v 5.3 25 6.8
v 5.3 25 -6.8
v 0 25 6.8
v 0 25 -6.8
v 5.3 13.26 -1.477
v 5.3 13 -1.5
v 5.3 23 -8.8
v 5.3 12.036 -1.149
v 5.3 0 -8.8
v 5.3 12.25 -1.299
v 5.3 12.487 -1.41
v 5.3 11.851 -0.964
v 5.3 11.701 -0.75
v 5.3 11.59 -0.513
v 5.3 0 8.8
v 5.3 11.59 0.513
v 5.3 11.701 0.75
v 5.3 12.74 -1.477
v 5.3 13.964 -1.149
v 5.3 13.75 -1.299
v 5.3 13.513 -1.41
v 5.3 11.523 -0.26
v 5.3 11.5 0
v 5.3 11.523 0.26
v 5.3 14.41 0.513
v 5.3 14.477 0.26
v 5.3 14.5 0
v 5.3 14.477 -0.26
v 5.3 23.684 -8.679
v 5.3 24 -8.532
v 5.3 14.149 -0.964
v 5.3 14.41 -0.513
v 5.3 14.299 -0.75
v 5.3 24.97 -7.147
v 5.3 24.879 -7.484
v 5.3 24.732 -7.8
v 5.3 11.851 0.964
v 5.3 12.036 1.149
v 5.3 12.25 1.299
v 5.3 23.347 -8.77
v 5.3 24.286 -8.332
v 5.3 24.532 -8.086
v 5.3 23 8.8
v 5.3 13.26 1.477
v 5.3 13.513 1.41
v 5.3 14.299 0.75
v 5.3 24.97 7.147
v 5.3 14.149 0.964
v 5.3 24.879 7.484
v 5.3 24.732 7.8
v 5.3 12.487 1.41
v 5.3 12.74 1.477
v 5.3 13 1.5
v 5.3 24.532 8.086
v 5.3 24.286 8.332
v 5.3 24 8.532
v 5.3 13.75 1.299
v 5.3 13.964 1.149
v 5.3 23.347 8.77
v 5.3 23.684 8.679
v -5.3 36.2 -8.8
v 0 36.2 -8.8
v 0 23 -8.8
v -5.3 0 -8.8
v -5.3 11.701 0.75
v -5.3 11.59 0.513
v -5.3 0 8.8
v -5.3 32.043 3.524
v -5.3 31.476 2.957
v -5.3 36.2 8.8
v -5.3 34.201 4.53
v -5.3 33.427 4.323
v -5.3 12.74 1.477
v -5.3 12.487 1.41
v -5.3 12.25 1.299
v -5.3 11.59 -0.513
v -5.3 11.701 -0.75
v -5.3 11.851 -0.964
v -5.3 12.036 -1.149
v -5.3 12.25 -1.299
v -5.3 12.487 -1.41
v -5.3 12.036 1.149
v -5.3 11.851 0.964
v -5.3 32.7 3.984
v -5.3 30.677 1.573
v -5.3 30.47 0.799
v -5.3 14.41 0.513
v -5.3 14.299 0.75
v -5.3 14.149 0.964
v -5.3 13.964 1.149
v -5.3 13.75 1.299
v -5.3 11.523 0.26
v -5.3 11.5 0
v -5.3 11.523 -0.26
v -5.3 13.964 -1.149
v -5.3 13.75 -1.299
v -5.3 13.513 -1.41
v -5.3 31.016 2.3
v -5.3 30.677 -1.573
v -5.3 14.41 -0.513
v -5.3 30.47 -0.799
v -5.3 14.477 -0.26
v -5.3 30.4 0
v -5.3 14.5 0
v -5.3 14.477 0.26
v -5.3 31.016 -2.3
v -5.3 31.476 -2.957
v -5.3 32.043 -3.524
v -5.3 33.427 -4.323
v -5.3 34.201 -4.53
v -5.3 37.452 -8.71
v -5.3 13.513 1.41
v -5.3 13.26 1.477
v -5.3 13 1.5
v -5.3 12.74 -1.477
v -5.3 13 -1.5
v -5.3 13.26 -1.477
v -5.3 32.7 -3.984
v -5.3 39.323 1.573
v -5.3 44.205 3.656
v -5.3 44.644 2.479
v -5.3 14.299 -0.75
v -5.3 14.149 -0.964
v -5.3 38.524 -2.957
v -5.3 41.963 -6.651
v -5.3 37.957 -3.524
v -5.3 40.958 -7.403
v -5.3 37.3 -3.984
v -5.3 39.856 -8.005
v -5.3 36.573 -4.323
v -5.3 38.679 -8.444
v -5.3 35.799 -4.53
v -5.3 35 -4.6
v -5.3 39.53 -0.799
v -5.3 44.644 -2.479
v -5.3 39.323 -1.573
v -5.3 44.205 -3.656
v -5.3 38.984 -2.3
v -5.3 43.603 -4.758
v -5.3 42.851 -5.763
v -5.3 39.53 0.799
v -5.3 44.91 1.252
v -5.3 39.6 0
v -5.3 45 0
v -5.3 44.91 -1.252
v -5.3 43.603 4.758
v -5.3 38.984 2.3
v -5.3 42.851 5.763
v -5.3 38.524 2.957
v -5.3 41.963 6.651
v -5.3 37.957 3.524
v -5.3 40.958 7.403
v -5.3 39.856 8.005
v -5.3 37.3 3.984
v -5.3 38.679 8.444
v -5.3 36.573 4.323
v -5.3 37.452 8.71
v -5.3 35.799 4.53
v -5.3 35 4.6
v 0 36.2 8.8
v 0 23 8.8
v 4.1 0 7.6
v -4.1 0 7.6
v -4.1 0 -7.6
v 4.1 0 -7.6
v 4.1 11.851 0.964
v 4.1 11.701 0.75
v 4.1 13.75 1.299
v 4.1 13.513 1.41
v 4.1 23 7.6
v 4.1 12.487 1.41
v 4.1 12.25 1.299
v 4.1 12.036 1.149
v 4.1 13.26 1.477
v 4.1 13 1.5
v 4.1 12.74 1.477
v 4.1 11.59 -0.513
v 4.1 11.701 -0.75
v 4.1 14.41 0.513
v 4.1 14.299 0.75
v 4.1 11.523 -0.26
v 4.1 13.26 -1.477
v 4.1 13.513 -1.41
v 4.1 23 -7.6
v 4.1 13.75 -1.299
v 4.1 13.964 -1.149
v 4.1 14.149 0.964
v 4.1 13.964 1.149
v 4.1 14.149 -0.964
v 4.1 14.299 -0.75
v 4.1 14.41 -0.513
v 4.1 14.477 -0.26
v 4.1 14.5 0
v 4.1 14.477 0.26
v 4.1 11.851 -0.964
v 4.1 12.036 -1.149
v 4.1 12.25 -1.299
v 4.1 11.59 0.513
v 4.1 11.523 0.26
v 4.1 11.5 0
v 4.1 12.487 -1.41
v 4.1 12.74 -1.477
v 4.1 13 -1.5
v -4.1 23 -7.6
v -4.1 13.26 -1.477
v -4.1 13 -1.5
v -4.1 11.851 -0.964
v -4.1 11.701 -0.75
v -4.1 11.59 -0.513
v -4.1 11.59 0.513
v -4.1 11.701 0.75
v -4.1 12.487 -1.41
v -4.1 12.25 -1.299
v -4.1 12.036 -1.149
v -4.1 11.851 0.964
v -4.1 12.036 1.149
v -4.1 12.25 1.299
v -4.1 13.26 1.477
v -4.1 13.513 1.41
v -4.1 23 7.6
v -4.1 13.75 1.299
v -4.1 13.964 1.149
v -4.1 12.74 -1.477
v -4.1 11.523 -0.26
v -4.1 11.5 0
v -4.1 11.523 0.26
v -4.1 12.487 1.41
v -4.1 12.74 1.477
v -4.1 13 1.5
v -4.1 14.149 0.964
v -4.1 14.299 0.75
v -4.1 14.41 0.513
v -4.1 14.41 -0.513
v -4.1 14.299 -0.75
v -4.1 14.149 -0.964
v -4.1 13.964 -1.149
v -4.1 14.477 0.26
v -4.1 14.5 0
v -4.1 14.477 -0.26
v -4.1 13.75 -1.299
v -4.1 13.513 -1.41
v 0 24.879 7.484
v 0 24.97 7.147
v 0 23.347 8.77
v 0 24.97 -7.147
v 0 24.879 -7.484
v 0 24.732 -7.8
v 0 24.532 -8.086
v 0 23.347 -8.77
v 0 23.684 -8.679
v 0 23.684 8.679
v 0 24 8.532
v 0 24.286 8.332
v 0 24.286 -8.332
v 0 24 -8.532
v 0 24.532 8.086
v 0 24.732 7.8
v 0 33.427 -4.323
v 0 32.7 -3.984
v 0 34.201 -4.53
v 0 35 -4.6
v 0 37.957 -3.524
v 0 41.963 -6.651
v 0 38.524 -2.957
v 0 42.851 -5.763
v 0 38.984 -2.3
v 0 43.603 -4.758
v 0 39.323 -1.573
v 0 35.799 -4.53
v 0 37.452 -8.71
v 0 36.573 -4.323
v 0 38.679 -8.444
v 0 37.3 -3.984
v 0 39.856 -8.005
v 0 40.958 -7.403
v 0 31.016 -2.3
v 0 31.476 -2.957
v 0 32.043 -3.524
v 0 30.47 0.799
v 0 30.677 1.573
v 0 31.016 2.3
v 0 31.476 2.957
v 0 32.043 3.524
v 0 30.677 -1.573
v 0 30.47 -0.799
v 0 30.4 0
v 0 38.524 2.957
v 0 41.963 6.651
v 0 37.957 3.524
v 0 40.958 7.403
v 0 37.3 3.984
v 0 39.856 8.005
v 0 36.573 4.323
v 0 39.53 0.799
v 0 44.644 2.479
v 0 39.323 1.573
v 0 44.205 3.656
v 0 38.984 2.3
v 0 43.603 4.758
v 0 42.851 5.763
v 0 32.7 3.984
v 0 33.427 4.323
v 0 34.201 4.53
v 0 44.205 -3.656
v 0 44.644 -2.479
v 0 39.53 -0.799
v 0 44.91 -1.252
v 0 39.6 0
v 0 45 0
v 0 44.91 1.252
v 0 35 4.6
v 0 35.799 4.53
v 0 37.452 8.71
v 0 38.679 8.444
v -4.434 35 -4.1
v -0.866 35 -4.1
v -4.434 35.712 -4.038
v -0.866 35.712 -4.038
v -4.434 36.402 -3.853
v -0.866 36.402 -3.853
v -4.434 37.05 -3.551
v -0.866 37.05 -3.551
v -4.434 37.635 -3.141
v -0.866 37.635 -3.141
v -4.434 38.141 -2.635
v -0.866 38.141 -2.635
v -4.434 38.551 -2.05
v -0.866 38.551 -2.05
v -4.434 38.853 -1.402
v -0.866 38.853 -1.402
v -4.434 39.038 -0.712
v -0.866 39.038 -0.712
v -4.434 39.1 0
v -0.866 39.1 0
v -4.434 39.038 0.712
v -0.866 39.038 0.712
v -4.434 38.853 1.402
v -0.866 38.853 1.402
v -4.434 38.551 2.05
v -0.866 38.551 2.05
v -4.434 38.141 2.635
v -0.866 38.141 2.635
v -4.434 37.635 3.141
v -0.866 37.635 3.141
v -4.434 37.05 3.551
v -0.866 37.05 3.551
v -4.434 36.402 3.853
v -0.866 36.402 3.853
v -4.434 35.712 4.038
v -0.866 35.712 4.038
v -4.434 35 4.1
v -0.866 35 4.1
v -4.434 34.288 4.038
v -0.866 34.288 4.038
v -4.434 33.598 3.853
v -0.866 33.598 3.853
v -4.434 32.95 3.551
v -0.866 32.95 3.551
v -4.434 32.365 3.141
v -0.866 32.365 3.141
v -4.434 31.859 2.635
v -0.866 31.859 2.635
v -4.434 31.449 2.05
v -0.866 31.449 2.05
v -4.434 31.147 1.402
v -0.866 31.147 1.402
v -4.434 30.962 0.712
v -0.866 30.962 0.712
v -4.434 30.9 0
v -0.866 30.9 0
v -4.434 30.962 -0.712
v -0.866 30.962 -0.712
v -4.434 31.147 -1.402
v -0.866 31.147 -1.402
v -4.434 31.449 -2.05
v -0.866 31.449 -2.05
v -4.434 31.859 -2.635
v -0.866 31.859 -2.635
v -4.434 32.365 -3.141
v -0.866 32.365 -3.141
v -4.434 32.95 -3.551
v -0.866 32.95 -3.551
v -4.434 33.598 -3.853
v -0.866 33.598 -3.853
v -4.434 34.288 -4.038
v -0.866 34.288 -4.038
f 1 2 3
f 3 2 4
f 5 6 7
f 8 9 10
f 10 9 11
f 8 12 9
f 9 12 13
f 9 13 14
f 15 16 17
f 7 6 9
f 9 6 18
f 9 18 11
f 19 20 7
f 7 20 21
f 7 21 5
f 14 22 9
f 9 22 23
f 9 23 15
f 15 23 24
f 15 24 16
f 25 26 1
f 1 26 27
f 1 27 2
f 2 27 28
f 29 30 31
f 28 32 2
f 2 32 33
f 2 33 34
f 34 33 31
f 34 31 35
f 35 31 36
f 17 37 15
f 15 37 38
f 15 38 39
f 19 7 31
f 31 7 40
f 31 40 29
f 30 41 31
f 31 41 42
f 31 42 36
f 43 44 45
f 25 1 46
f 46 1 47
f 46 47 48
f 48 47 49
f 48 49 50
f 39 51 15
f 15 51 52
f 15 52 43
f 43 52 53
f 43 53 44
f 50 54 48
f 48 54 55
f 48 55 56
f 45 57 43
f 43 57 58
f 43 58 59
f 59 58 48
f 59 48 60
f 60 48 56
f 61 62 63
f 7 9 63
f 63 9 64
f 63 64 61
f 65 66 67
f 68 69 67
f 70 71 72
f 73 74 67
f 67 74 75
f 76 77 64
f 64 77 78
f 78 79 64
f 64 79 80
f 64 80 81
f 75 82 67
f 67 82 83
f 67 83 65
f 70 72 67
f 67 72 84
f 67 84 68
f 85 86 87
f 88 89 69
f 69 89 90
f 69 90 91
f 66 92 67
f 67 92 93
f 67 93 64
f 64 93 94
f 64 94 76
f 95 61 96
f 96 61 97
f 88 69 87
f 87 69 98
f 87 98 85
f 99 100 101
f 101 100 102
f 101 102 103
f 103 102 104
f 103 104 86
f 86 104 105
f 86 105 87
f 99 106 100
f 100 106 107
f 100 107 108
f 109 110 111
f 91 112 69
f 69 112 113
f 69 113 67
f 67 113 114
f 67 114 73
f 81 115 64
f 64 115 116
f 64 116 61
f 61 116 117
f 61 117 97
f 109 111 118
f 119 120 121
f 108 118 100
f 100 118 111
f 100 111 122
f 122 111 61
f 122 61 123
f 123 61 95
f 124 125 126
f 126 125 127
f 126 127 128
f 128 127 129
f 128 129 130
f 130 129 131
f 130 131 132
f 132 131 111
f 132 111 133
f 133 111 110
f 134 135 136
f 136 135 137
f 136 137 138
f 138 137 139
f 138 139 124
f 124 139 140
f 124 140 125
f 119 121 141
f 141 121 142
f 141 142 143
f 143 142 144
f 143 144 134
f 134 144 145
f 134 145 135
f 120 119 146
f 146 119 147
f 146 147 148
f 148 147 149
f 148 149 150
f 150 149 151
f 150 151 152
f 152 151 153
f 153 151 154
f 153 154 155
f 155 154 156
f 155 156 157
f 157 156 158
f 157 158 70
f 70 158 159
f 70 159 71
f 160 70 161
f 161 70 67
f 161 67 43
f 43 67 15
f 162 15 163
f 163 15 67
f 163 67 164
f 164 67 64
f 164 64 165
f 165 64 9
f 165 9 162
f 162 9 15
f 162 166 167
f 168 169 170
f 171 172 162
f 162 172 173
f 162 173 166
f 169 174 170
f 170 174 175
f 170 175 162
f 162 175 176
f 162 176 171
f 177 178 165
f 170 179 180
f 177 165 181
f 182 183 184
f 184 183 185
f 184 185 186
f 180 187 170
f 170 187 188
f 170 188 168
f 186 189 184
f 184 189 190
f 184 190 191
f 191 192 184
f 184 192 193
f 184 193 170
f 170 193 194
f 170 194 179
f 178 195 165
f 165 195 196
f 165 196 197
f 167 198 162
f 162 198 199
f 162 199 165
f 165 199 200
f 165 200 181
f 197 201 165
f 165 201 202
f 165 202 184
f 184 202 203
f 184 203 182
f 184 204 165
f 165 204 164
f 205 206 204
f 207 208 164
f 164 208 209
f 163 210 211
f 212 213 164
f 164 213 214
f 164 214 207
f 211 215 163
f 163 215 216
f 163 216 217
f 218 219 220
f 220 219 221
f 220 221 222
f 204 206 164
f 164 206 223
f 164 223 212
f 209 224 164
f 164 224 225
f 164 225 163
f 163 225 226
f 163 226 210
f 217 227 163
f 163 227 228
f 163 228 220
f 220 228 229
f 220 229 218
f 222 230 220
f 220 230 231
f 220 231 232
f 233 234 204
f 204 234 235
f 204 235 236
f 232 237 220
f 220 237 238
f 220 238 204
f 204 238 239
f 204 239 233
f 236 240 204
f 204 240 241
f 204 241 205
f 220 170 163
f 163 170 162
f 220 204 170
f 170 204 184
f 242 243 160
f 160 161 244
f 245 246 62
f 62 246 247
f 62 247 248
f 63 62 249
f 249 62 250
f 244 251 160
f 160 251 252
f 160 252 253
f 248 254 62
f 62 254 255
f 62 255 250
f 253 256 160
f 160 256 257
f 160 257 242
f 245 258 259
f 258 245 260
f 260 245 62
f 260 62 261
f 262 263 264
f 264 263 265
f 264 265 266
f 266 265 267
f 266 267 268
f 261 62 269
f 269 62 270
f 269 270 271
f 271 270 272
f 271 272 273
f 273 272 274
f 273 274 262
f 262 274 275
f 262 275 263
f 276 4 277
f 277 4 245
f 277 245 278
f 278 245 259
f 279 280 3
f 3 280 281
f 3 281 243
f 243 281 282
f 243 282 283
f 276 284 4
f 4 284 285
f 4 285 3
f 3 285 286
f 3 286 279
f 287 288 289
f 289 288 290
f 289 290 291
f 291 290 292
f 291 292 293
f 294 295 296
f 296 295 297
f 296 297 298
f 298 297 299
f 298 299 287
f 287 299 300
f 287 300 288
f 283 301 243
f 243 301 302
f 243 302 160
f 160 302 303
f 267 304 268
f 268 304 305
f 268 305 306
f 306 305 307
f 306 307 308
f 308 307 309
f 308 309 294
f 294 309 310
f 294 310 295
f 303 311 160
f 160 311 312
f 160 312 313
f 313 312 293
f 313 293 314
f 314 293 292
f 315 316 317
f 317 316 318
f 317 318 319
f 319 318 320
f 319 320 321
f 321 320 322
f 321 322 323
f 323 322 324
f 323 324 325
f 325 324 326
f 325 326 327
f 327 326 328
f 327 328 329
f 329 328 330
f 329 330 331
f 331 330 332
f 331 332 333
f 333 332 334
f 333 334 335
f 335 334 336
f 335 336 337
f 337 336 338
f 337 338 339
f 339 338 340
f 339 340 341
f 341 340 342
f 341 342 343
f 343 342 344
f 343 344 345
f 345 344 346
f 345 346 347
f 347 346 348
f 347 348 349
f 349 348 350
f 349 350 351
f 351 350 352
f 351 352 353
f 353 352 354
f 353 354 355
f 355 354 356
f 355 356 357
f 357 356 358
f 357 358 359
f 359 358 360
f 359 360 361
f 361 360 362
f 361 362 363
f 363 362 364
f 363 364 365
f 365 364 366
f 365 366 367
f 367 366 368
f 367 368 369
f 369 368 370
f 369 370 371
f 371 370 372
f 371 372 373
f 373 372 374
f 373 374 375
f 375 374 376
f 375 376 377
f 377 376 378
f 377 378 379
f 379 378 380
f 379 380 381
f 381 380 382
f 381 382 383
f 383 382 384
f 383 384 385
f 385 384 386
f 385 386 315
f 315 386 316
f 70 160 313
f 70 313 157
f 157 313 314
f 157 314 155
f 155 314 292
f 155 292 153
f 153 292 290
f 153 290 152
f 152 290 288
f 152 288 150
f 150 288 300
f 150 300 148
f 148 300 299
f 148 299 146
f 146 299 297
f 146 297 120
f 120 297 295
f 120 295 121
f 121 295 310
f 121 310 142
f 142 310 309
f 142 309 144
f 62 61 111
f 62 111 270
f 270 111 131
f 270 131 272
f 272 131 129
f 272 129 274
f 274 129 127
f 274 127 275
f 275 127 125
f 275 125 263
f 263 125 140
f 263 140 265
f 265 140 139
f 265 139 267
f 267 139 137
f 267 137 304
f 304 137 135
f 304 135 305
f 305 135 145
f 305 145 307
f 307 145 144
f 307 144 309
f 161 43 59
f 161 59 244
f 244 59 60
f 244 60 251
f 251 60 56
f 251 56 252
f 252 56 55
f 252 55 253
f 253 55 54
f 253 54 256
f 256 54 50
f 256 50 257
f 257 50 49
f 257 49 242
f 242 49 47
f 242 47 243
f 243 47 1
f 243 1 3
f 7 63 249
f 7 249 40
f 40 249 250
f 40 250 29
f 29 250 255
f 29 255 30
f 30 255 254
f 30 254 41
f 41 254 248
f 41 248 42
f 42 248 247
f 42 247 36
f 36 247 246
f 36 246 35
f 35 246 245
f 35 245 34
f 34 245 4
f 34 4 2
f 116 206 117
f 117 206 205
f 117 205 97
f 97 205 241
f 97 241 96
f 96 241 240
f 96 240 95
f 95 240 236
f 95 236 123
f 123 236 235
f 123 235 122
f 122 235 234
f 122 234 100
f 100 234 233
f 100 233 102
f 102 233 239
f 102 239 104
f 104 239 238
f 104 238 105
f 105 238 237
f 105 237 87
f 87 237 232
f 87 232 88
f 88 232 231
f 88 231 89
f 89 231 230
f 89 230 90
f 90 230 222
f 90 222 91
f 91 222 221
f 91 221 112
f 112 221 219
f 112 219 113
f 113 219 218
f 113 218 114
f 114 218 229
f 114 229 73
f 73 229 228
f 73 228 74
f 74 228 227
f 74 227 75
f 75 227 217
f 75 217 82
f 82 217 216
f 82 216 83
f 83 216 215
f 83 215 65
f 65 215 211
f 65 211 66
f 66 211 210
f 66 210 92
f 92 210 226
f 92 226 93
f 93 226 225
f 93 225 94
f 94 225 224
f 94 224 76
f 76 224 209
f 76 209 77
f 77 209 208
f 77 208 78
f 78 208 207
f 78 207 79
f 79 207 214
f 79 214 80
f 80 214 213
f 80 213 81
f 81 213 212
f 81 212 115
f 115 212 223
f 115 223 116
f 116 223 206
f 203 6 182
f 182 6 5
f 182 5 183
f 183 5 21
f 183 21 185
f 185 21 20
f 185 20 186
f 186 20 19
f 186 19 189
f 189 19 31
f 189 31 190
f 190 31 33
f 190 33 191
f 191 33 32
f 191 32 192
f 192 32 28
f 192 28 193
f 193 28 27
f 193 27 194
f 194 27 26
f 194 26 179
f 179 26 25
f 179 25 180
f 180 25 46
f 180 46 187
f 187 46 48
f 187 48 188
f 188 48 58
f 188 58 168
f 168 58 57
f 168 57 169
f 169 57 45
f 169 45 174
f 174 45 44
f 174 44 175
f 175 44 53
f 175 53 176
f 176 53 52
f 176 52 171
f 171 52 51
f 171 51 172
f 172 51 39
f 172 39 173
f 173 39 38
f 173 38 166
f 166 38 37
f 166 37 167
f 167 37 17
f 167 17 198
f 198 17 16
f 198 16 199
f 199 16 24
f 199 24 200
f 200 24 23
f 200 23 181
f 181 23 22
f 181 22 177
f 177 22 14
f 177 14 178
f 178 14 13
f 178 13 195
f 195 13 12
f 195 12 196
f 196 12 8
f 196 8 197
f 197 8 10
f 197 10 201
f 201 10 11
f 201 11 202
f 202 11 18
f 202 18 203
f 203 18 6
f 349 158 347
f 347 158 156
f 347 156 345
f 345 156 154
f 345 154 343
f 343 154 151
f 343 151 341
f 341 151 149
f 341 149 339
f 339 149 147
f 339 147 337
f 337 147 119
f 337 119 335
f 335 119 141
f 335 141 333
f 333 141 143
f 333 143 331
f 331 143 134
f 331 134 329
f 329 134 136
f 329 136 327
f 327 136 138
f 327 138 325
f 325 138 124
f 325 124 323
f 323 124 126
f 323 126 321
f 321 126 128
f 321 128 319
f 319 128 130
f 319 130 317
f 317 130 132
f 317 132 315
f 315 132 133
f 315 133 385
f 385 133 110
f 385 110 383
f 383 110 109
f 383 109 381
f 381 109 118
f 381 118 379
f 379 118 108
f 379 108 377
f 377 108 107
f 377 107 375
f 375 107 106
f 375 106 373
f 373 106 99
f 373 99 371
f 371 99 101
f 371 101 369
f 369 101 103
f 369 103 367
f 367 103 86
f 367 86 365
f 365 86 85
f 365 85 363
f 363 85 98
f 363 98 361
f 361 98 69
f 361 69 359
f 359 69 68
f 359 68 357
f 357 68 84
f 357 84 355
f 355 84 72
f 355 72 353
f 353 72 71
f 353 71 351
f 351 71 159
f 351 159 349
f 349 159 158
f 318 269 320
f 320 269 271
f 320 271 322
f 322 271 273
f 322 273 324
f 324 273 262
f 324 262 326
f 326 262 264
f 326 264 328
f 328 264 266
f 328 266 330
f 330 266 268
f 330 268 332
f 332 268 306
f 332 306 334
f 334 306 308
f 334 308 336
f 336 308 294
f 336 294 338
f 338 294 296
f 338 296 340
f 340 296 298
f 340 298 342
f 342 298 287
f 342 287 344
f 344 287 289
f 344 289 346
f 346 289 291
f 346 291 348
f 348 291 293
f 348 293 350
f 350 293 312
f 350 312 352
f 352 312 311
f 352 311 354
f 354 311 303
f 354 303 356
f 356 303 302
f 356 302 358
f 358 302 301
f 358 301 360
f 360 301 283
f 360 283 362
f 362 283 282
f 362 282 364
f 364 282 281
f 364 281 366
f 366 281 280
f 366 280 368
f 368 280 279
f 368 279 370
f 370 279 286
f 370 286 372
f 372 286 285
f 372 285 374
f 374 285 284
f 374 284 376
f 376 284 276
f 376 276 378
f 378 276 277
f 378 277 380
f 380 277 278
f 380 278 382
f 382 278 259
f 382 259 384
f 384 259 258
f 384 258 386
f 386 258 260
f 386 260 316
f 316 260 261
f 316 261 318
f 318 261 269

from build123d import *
from OCP.BRepFilletAPI import BRepFilletAPI_MakeChamfer

# Parameters (mm, degrees)
SKETCH1_W           = 10.6
SKETCH1_H           = 17.6
BOSS_EXTRUDE1_DEPTH = 25
SKETCH2_W           = 8.2
SKETCH2_H           = 15.2
CUT_EXTRUDE1_DEPTH  = 23
SKETCH4_W           = 5.3
SKETCH4_H           = 17.6
BOSS_EXTRUDE2_DEPTH = 20
CUT_EXTRUDE2_REACH  = 48.158
SKETCH5_R           = 4.1
FILLET1_R           = 8.8
FILLET2_R           = 2
SKETCH6_R           = 1.5
CUT_EXTRUDE3_DEPTH  = 48.061661679
CHAMFER1_SIZE       = 0.5
CHAMFER1_SIZE2      = 0.866025404


with BuildPart() as part:
    # Sketch1 → Boss-Extrude1 (new body)
    with BuildSketch(Plane(origin=(0, 0, 0), x_dir=(1, 0, 0), z_dir=(0, 1, 0))):
        Rectangle(SKETCH1_W, SKETCH1_H)
    extrude(amount=BOSS_EXTRUDE1_DEPTH)

    # Sketch2 → Cut-Extrude1 (cut)
    with BuildSketch(Plane.XZ):
        Rectangle(SKETCH2_W, SKETCH2_H)
    extrude(amount=-CUT_EXTRUDE1_DEPTH, mode=Mode.SUBTRACT)

    # Sketch4 → Boss-Extrude2 (add)
    with BuildSketch(Plane(origin=(0, 25, 0), x_dir=(1, 0, 0), z_dir=(0, 1, 0))):
        with Locations((-2.65, 0)):
            Rectangle(SKETCH4_W, SKETCH4_H)
    extrude(amount=BOSS_EXTRUDE2_DEPTH)

    # Sketch5 → Cut-Extrude2 (cut, up to next)
    with BuildSketch(Plane(origin=(0, 0, 0), x_dir=(0, 0, -1), z_dir=(1, 0, 0)), mode=Mode.PRIVATE) as cut_extrude2_sk1:
        with Locations((0, 35)):
            Circle(SKETCH5_R)
    cut_extrude2_tool1 = extrude(cut_extrude2_sk1.sketch, amount=-CUT_EXTRUDE2_REACH, mode=Mode.PRIVATE) & part.part
    add(cut_extrude2_tool1.solids().sort_by_distance((0, 35, 0))[0], mode=Mode.SUBTRACT)

    # Fillet1
    fillet1_edges = [part.edges().sort_by_distance(p)[0] for p in [
        (-2.65, 45, -8.8),
        (-2.65, 45, 8.8),
    ]]
    fillet(fillet1_edges, radius=FILLET1_R - 0.0001)  # a hair under: the kernel refuses the full size

    # Fillet2
    fillet2_edges = [part.edges().sort_by_distance(p)[0] for p in [
        (2.65, 25, 8.8),
        (2.65, 25, -8.8),
    ]]
    fillet(fillet2_edges, radius=FILLET2_R)

    # Sketch6 → Cut-Extrude3 (cut, through all)
    with BuildSketch(Plane(origin=(5.3, 0, 0), x_dir=(0, 0, -1), z_dir=(1, 0, 0))):
        with Locations((0, 13)):
            Circle(SKETCH6_R)
    extrude(amount=-CUT_EXTRUDE3_DEPTH, mode=Mode.SUBTRACT)

    # Chamfer1: one chamfer whose edges measure the first distance from different faces: ONE call of the kernel's chamfer builder (chamfer() names one face for all edges)
    chamfer1_edges_1 = [part.edges().sort_by_distance(p)[0] for p in [
        (0, 35, 4.1),
    ]]
    chamfer1_side_1 = [part.faces().sort_by_distance(p)[0] for p in [
        (0, 25.281737466, 0),
    ]]
    chamfer1_edges_2 = [part.edges().sort_by_distance(p)[0] for p in [
        (-5.3, 35, 4.1),
    ]]
    chamfer1_side_2 = [part.faces().sort_by_distance(p)[0] for p in [
        (-5.3, 20.674988238, 0),
    ]]
    chamfer1 = BRepFilletAPI_MakeChamfer(part.part.solid().wrapped)
    for e in chamfer1_edges_1:
        chamfer1.Add(CHAMFER1_SIZE, CHAMFER1_SIZE2, e.wrapped, chamfer1_side_1[0].wrapped)  # the first distance lies on this face
    for e in chamfer1_edges_2:
        chamfer1.Add(CHAMFER1_SIZE, CHAMFER1_SIZE2, e.wrapped, chamfer1_side_2[0].wrapped)  # the first distance lies on this face
    add(Compound.cast(chamfer1.Shape()), mode=Mode.REPLACE)


solid = part.part
